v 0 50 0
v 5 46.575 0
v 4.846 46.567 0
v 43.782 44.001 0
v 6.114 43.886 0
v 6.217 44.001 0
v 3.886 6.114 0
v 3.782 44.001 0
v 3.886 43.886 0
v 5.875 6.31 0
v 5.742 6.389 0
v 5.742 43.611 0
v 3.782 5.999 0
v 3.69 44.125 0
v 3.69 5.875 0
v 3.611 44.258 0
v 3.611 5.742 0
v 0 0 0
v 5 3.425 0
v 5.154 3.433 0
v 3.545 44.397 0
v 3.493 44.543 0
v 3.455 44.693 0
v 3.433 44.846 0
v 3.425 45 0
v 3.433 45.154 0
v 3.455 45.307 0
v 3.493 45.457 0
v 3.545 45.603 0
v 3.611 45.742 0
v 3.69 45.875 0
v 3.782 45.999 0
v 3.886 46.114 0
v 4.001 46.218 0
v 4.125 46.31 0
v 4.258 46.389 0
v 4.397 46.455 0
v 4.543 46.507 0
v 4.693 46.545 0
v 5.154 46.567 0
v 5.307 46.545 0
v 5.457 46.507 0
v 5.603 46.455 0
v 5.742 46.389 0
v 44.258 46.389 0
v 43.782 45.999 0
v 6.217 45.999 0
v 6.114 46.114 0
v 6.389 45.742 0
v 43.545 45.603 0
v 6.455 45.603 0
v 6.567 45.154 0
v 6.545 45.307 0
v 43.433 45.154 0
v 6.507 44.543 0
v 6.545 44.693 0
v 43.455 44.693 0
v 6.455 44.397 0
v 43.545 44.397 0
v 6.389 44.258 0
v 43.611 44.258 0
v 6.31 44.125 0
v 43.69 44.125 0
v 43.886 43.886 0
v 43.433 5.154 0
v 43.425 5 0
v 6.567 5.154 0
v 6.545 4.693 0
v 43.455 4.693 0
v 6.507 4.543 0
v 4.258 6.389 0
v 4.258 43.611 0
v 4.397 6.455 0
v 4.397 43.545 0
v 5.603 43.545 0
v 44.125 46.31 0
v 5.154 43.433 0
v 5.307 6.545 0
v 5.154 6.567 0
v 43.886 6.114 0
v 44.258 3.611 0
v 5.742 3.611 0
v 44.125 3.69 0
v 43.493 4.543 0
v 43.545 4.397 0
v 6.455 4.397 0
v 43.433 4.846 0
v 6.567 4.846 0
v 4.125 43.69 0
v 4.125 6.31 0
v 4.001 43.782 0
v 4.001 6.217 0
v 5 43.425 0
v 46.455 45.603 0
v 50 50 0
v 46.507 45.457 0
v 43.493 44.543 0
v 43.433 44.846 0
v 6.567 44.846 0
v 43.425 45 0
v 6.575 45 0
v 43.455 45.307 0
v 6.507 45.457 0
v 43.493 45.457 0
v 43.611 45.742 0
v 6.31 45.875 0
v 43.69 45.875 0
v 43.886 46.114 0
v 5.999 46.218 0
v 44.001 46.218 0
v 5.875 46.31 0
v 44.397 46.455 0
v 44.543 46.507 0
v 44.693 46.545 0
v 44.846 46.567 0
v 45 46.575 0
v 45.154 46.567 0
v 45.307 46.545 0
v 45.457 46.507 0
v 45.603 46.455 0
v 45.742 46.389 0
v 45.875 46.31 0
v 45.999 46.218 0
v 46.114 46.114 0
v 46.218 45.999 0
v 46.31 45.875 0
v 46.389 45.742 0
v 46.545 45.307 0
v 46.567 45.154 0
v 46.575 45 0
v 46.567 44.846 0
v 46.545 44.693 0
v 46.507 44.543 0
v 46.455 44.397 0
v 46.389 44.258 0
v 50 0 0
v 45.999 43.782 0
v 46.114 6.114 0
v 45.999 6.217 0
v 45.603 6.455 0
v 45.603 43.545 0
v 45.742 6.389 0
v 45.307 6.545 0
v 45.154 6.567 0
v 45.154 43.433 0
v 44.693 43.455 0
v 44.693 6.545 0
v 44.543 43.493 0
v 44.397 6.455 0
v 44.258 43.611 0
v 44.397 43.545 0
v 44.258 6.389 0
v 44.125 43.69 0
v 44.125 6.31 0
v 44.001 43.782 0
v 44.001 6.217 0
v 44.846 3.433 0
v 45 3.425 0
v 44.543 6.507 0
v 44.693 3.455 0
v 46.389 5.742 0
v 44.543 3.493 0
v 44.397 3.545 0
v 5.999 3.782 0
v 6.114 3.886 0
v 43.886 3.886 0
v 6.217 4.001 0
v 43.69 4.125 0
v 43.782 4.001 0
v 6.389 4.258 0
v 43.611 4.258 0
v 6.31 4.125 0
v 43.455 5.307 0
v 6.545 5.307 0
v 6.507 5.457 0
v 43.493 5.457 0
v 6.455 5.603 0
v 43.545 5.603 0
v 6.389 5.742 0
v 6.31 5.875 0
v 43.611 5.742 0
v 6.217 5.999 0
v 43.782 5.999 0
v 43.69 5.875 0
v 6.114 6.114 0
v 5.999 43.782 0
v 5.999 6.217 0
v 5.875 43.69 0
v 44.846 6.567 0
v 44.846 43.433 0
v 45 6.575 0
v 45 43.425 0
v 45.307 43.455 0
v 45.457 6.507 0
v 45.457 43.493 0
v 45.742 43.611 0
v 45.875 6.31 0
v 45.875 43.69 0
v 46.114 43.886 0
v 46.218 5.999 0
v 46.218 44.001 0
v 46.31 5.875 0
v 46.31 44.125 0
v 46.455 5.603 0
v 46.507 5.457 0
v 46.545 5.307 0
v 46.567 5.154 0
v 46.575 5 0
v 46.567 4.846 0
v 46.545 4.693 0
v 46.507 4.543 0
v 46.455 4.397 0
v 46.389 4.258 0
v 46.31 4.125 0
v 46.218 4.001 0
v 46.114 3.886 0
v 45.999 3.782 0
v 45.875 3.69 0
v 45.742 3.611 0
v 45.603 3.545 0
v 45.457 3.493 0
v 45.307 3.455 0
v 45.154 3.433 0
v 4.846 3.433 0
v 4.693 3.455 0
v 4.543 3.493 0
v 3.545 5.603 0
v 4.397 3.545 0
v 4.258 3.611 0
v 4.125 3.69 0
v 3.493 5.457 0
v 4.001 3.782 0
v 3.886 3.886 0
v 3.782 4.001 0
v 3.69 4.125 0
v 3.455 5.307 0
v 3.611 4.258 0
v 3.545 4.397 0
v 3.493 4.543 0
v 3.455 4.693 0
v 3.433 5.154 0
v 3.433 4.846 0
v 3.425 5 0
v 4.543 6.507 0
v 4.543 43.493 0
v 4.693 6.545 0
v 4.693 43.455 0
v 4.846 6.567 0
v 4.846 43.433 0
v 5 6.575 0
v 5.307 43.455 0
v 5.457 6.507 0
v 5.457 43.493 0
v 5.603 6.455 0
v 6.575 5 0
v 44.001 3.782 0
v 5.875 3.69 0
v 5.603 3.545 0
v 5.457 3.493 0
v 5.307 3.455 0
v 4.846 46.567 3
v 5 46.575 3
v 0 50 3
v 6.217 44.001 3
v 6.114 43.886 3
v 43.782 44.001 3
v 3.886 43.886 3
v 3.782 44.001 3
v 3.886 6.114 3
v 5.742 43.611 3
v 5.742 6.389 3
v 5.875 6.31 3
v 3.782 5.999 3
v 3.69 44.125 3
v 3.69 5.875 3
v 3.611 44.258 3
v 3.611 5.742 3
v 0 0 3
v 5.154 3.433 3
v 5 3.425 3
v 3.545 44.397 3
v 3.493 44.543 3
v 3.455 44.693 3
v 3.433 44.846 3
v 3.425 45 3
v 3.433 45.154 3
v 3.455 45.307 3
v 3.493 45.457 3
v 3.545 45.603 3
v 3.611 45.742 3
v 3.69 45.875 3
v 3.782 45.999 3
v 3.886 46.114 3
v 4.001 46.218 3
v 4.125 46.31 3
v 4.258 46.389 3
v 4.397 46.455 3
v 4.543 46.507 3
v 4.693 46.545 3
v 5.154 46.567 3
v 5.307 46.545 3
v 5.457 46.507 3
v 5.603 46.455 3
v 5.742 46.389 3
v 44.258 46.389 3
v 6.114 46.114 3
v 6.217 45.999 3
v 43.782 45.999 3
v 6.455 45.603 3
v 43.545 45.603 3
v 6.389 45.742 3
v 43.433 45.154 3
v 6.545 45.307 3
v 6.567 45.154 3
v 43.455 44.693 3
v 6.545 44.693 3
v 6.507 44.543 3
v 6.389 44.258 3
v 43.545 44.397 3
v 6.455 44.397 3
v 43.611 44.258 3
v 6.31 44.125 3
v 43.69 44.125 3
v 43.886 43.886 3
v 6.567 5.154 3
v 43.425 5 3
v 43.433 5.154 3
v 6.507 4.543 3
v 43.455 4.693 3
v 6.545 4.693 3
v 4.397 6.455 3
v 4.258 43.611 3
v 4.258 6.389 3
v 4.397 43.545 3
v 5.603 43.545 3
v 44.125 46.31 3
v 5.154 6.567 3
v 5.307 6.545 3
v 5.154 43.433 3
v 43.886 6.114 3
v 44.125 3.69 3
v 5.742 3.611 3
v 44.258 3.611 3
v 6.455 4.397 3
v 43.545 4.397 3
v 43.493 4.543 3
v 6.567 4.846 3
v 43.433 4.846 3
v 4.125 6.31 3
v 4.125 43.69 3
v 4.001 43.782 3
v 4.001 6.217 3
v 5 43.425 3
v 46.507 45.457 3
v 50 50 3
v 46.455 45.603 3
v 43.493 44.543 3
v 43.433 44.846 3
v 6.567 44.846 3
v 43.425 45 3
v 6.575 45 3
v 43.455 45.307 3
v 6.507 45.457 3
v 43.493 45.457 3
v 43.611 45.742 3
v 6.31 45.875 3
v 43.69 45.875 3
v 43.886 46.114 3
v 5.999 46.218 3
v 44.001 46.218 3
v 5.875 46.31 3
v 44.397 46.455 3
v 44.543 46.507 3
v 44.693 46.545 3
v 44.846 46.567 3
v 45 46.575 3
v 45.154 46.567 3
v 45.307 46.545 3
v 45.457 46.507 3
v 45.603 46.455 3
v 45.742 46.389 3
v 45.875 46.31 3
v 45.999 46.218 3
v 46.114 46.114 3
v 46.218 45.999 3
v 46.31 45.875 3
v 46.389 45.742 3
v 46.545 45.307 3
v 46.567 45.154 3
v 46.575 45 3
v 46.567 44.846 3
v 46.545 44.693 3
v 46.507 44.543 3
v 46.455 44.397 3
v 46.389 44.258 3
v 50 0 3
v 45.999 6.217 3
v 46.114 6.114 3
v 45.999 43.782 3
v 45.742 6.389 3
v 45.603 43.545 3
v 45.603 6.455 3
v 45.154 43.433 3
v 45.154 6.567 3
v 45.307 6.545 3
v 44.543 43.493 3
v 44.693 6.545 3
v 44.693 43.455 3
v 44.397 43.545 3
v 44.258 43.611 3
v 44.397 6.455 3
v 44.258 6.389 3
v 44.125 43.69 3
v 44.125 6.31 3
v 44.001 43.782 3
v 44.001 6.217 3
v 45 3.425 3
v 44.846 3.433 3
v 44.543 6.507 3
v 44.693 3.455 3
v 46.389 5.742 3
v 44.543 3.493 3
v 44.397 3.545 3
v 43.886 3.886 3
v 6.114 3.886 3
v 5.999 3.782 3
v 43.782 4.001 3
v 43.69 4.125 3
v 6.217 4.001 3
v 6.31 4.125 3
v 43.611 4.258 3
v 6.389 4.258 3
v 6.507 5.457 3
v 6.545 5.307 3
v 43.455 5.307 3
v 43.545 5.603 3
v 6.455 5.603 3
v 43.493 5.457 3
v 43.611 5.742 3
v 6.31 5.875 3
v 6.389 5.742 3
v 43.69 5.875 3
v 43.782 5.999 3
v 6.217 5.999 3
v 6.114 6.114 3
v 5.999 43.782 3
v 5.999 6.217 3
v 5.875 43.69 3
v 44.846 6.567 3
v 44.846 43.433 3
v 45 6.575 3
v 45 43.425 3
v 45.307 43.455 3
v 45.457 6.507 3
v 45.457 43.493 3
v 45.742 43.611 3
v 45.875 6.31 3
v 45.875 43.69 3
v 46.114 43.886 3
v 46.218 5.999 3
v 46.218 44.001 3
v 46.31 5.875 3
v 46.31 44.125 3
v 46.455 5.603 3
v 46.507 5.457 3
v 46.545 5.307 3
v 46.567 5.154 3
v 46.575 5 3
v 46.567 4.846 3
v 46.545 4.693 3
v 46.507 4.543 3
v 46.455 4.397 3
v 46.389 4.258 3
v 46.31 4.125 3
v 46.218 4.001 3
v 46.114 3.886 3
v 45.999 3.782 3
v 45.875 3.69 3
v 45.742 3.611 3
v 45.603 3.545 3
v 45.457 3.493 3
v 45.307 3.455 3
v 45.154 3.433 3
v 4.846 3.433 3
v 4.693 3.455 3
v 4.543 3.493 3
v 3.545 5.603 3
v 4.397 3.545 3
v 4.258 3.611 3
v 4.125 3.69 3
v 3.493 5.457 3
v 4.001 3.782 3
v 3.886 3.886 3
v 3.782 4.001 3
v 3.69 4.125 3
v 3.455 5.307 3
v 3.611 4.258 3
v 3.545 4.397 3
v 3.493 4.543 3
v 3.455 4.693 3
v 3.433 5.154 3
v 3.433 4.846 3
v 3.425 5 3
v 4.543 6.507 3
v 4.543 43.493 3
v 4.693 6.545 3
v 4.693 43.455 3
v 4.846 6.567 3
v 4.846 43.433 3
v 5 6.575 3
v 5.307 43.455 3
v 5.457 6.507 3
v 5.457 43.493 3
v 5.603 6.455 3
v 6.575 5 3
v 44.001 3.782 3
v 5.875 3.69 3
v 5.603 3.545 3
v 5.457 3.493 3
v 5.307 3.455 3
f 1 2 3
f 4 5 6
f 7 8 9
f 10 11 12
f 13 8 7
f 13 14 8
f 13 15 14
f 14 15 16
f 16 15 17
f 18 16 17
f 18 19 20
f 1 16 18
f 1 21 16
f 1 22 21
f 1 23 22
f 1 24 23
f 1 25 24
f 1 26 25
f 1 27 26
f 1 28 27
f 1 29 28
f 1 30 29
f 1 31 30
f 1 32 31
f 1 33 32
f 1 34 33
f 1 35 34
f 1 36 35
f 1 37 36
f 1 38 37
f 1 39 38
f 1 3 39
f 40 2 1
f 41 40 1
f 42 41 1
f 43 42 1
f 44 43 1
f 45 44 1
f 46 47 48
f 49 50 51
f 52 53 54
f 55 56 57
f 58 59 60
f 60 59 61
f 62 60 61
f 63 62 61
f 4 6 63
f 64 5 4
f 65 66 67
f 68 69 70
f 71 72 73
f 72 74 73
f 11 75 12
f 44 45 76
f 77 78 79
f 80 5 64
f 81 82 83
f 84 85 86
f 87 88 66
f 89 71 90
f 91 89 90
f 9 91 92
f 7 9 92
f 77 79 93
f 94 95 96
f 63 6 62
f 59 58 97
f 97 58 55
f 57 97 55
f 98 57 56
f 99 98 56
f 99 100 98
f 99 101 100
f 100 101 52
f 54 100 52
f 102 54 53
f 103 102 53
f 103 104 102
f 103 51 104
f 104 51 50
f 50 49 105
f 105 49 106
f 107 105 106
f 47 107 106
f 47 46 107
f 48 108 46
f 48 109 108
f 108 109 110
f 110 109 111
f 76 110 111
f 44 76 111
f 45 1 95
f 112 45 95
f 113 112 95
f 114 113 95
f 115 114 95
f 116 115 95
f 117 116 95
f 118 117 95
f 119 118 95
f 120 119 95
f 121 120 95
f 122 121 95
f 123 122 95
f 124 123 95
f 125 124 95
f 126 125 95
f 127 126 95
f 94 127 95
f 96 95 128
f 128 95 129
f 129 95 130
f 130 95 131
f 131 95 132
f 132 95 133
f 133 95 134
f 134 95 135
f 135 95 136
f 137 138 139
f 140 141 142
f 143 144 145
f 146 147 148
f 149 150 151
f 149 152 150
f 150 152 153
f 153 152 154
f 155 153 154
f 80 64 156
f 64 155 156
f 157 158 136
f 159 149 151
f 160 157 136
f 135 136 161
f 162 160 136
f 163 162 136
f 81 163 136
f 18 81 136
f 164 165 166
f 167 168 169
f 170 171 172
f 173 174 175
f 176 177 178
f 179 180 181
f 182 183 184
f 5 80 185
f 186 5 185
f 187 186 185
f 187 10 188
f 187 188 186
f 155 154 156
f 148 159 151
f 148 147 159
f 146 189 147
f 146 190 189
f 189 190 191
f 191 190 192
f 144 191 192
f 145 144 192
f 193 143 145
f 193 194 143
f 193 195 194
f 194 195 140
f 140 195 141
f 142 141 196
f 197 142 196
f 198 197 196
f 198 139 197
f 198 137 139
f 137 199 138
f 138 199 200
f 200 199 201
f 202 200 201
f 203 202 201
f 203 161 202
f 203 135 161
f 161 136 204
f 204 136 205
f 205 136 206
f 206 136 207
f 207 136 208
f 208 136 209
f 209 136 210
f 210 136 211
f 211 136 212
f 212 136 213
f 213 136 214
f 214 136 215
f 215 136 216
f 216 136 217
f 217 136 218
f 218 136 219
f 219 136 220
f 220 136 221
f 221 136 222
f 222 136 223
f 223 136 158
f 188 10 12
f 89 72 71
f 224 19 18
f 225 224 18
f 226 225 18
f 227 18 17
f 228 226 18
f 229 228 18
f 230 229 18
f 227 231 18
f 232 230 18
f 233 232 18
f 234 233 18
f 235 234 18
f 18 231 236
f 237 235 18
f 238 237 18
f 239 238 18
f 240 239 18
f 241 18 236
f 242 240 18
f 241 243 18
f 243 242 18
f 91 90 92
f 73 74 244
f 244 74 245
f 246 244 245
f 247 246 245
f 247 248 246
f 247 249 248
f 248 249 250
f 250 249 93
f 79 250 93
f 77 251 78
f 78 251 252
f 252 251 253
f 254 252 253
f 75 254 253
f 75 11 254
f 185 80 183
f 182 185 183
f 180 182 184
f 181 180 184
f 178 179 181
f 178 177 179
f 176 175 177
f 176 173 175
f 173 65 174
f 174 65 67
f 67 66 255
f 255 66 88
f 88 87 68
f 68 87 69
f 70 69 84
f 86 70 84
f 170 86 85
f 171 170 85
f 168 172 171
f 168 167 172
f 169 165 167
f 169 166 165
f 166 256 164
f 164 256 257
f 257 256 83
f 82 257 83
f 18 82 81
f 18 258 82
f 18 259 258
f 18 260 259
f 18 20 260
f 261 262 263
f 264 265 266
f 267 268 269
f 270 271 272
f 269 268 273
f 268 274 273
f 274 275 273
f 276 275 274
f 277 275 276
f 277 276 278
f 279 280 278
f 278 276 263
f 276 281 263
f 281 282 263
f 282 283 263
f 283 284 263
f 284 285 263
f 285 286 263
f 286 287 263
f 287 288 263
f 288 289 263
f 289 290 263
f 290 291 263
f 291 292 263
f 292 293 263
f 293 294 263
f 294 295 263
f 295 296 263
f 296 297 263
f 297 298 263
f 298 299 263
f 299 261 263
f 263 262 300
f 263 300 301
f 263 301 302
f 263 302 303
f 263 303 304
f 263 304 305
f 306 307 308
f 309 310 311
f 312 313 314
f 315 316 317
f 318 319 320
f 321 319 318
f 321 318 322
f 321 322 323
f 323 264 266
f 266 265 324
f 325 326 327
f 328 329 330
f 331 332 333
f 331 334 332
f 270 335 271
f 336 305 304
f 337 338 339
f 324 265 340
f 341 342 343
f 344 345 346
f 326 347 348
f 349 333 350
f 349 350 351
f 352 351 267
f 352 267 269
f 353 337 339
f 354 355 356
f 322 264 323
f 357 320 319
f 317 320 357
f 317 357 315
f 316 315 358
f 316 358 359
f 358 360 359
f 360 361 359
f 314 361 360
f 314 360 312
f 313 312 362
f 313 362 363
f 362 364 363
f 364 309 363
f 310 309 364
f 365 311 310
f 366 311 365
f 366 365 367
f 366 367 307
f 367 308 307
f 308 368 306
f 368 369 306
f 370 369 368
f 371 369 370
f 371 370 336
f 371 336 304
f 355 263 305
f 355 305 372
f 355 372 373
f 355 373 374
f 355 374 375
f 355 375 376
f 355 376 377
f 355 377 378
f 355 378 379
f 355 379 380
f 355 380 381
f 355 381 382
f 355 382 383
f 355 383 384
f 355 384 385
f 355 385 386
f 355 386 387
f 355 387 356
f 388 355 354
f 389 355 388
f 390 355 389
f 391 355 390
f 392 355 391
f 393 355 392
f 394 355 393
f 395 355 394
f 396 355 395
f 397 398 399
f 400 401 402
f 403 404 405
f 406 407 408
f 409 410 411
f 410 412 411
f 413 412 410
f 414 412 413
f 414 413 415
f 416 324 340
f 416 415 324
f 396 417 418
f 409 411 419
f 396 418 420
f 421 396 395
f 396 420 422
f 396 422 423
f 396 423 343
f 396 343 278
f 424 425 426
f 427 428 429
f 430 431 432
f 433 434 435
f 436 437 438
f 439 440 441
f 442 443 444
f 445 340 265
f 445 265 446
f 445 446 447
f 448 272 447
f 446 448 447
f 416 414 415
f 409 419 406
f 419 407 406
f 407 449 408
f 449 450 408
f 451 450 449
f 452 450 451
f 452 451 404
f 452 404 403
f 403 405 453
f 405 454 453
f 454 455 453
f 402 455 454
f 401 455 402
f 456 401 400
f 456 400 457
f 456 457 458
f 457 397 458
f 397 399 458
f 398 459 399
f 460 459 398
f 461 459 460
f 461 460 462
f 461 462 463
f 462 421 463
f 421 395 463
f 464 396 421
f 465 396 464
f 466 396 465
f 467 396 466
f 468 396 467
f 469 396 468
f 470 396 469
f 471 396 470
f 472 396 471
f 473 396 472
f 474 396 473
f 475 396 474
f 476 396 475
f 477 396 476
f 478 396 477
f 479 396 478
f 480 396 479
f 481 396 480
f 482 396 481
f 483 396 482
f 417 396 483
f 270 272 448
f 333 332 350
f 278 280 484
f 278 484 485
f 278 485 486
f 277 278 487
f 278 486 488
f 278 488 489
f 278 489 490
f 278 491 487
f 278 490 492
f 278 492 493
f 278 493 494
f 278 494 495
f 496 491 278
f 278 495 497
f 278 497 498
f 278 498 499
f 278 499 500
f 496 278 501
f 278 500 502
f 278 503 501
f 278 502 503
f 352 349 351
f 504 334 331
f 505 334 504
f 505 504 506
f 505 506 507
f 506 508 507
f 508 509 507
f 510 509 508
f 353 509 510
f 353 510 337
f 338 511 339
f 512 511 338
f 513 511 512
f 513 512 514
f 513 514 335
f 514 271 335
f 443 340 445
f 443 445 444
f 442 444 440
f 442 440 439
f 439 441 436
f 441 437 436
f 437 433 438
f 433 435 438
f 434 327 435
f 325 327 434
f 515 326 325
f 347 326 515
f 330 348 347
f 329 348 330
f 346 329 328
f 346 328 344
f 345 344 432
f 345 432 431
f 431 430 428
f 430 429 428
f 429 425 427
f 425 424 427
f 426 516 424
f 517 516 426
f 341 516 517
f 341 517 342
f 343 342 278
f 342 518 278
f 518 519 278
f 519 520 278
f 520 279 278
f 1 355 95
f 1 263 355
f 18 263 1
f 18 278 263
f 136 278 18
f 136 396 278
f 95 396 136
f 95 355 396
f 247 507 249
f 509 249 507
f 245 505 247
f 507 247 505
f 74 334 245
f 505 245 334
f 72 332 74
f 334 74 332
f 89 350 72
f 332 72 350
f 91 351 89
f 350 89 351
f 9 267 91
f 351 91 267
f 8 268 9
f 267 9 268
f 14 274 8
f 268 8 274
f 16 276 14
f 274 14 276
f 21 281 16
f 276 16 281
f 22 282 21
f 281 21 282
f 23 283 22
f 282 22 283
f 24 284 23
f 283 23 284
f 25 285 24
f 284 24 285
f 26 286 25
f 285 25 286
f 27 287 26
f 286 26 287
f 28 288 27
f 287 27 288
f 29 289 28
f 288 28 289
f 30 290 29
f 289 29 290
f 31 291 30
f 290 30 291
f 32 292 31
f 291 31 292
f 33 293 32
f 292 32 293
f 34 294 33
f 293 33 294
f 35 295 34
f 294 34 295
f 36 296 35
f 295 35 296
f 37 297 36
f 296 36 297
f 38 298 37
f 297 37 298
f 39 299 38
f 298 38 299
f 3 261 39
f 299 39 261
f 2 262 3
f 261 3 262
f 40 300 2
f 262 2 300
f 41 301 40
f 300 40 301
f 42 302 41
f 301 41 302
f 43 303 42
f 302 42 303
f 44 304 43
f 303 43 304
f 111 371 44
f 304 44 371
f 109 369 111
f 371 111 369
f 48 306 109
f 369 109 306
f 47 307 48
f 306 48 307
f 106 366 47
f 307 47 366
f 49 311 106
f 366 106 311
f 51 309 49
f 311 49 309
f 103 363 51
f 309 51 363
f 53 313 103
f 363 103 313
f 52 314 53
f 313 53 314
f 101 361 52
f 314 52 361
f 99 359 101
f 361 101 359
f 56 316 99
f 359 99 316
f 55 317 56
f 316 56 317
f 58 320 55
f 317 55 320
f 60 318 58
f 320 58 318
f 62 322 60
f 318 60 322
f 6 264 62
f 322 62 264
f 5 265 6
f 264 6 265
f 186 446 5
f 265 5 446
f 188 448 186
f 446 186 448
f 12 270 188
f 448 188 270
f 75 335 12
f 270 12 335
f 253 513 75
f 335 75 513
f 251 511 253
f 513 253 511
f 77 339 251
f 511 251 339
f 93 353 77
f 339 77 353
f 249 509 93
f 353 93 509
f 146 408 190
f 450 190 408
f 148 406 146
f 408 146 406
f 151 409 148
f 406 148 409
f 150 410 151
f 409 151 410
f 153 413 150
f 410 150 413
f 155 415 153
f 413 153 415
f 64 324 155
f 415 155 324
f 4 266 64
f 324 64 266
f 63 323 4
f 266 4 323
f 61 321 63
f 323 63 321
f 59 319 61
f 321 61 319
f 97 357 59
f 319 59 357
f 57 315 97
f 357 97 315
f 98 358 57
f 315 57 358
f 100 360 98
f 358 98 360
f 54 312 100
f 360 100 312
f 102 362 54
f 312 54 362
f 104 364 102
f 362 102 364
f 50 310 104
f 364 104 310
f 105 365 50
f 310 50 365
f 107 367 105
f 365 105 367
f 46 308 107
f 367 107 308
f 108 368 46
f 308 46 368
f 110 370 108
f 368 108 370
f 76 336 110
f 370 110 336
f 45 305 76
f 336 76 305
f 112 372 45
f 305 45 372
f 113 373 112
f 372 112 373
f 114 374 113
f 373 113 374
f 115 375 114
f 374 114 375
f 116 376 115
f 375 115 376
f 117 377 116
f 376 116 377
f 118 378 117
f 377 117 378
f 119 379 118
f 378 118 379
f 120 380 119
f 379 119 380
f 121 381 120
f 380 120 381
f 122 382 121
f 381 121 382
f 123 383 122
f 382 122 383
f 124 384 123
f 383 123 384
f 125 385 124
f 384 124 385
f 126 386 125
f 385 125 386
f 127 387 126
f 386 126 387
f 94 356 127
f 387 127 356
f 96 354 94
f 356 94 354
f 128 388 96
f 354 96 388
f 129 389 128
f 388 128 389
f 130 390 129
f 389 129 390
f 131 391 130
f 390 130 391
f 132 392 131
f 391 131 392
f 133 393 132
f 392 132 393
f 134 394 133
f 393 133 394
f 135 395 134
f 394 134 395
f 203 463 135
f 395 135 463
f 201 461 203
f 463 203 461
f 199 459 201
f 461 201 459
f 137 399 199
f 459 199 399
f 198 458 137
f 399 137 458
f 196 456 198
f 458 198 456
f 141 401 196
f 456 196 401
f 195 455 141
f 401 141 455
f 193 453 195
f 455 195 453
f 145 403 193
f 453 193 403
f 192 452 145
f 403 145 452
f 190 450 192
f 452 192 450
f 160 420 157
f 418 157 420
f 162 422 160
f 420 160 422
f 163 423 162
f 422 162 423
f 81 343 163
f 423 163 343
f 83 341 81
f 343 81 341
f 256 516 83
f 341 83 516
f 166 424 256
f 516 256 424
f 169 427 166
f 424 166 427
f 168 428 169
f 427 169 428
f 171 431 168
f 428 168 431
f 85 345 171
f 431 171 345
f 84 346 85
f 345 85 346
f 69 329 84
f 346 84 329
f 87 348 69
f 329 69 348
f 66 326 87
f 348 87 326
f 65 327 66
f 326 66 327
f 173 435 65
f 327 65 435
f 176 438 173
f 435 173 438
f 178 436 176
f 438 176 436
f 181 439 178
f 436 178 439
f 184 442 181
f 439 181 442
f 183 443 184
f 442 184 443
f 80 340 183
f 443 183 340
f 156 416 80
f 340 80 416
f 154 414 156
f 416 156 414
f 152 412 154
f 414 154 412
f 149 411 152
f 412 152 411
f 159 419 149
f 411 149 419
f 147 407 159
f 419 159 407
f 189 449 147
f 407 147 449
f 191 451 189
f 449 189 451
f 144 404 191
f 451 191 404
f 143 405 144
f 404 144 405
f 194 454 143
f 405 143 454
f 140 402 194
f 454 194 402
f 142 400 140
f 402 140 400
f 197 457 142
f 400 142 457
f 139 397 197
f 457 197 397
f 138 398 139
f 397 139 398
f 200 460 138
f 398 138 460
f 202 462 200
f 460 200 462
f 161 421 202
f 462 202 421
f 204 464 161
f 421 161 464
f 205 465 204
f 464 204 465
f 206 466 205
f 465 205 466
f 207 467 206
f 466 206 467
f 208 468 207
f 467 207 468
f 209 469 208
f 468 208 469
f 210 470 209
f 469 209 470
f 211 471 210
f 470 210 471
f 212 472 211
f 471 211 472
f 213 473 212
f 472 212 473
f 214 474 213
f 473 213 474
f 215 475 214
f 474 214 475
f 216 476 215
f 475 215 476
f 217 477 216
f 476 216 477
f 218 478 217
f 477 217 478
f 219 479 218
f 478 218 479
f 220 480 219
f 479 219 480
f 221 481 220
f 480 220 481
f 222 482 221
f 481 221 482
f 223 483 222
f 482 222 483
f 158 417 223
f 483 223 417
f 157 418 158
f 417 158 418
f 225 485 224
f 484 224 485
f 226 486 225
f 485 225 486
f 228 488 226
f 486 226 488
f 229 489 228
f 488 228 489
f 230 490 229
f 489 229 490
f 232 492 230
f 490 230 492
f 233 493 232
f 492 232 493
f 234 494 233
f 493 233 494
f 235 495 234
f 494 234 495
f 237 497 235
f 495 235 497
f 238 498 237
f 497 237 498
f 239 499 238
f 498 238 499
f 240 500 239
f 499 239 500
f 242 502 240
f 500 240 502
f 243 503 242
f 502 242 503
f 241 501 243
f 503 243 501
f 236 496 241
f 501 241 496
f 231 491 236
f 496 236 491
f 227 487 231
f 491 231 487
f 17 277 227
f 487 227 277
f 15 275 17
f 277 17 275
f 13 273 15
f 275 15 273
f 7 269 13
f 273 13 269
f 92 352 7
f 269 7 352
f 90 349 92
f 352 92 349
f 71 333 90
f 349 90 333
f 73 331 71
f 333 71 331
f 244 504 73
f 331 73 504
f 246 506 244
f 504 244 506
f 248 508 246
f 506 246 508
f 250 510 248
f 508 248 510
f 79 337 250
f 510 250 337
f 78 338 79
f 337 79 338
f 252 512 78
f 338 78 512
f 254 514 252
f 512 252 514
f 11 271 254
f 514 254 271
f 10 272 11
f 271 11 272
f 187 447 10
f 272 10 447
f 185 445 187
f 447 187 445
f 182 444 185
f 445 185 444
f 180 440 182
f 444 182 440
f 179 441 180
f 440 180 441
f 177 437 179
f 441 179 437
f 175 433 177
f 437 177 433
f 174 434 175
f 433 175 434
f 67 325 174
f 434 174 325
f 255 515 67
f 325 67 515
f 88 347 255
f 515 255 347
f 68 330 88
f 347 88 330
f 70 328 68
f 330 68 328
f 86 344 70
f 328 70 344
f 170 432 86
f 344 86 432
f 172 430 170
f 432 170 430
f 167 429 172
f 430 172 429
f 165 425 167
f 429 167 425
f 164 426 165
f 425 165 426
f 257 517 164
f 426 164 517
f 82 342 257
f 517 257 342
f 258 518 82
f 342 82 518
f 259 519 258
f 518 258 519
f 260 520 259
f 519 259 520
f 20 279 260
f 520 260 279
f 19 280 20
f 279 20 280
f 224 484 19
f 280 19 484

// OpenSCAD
// file: miniature-bases/common/params.scad
$fn = $preview ? 32 : 64;

// Value of kerf to apply when lasercutting things.
// Value is based on the experience using Epilog Mini machine in
// Google WFC Makerspace.
kerf = 0.2;

// Spacing between insert and miniatures bases to allow to slick fit.
insert_spacing = 0.2;
magnet_spacing = 0.15;

// Default values
//
// Default diameter of magnets used for my miniatures.
default_magnet_diameter = 3;
base_height = 3;
pin_height = 2.5;
// file: miniature-bases/common/kow.scad
include <params.scad>;

module MagnetSockets(unit_type, only_diagonal = false) {
  baseSize = BaseSize(unit_type);

  translate([ 5, baseSize[1] - 5 ]) children(0);
  translate([ baseSize[0] - 5, 5 ]) children(0);

  if (!only_diagonal) {
    translate([ 5, 5 ]) children(0);
    translate([ baseSize[0] - 5, baseSize[1] - 5 ]) children(0);
  }
}

module Magnet(d = default_magnet_diameter, offset = 0) {
  circle(d = d + offset);
}

module BM4Sockets(unit_type, spacing, only_diagonal = false) {
  MagnetSockets(unit_type = unit_type, only_diagonal = only_diagonal) {
    Magnet(offset = spacing);
  }
}

module Base(unit_type, extraMargin = [ 0, 0 ]) {
  square(BaseSize(unit_type) + extraMargin);
}

function BaseSize(unit_type) = unit_type == "infantry"         ? [ 20, 20 ]
                               : unit_type == "heavy_infantry" ? [ 25, 25 ]
                               : unit_type == "cavalry"        ? [ 25, 50 ]
                               : unit_type == "lrginf"         ? [ 40, 40 ]
                               : unit_type == "lrgcav"         ? [ 50, 50 ]
                               : unit_type == "titan"          ? [ 75, 75 ]
                                                               : [ 10, 10 ];

function BaseNum(unit_type, unitSize) =
    unit_type == "infantry"  ? unitSize == "legion"     ? [ 10, 6 ]
                               : unitSize == "horde"    ? [ 10, 4 ]
                               : unitSize == "regiment" ? [ 5, 4 ]
                                                        : [ 5, 2 ]
    : unit_type == "cavalry" ? unitSize == "regiment" ? [ 5, 2 ] : [ 5, 1 ]
    : unit_type == "lrginf"  ? unitSize == "regiment" ? [ 3, 1 ] : [ 3, 2 ]
    : unit_type == "lrgcav"  ? unitSize == "regiment" ? [ 3, 1 ]
                               : unitSize == "horde"  ? [ 3, 2 ]
                                                      : [ 1, 1 ]
                             : [ 1, 1 ];
// file: miniature-bases/libbase.scad
include <common/kow.scad>;

module MagnetHole() { Magnet(offset = magnet_spacing); } 

module BaseBM4(unit_type, only_diagonal = false) {
  linear_extrude(height = base_height) {
    difference() {
      Base(unit_type = unit_type);
      union() {
        MagnetSockets(unit_type = unit_type, only_diagonal = only_diagonal) {
          MagnetHole();
        }
        children();
      }
    }
  }
}

SLOTTA_ANGLE = 0;
SLOTTA_SLOT_MARGIN = 1.5; 
SLOT_WIDTH = 1.7;  


module SlottaBM4(a = SLOTTA_ANGLE, unit_type = "infantry", slot_margin = SLOTTA_SLOT_MARGIN) {
  base_size = BaseSize(unit_type);

  // slot_length = 18; for a = 0 (as in GW bases)
  // total_slot_margin = 4; for a = 45 (as in GW bases)

  slot_length =
      (base_size[0] - 2 * slot_margin - cos(90 - a) * SLOT_WIDTH) / cos(a);

  BaseBM4(unit_type = unit_type, only_diagonal = true) {
    translate(0.5 * base_size) rotate(a)
        square([ slot_length, SLOT_WIDTH ], center = true);
  };
}

module CavalrySlot() {
  slotWidth = 2.5;
  slotLength = 35;
  slotSpacing = 2.8;
  baseSize = BaseSize("cavalry");

  translate([
    (baseSize[0] - 2 * slotWidth - slotSpacing) / 2,
    (baseSize[1] - slotLength) / 2
  ]) {
    square([ slotWidth, slotLength ]);
    translate([ slotSpacing + slotWidth, 0 ]) square([ slotWidth, slotLength ]);
  }
}
// main file
use <miniature-bases/libbase.scad>

BaseBM4("lrgcav"); // Large Cavalry has the same base size as Monster
